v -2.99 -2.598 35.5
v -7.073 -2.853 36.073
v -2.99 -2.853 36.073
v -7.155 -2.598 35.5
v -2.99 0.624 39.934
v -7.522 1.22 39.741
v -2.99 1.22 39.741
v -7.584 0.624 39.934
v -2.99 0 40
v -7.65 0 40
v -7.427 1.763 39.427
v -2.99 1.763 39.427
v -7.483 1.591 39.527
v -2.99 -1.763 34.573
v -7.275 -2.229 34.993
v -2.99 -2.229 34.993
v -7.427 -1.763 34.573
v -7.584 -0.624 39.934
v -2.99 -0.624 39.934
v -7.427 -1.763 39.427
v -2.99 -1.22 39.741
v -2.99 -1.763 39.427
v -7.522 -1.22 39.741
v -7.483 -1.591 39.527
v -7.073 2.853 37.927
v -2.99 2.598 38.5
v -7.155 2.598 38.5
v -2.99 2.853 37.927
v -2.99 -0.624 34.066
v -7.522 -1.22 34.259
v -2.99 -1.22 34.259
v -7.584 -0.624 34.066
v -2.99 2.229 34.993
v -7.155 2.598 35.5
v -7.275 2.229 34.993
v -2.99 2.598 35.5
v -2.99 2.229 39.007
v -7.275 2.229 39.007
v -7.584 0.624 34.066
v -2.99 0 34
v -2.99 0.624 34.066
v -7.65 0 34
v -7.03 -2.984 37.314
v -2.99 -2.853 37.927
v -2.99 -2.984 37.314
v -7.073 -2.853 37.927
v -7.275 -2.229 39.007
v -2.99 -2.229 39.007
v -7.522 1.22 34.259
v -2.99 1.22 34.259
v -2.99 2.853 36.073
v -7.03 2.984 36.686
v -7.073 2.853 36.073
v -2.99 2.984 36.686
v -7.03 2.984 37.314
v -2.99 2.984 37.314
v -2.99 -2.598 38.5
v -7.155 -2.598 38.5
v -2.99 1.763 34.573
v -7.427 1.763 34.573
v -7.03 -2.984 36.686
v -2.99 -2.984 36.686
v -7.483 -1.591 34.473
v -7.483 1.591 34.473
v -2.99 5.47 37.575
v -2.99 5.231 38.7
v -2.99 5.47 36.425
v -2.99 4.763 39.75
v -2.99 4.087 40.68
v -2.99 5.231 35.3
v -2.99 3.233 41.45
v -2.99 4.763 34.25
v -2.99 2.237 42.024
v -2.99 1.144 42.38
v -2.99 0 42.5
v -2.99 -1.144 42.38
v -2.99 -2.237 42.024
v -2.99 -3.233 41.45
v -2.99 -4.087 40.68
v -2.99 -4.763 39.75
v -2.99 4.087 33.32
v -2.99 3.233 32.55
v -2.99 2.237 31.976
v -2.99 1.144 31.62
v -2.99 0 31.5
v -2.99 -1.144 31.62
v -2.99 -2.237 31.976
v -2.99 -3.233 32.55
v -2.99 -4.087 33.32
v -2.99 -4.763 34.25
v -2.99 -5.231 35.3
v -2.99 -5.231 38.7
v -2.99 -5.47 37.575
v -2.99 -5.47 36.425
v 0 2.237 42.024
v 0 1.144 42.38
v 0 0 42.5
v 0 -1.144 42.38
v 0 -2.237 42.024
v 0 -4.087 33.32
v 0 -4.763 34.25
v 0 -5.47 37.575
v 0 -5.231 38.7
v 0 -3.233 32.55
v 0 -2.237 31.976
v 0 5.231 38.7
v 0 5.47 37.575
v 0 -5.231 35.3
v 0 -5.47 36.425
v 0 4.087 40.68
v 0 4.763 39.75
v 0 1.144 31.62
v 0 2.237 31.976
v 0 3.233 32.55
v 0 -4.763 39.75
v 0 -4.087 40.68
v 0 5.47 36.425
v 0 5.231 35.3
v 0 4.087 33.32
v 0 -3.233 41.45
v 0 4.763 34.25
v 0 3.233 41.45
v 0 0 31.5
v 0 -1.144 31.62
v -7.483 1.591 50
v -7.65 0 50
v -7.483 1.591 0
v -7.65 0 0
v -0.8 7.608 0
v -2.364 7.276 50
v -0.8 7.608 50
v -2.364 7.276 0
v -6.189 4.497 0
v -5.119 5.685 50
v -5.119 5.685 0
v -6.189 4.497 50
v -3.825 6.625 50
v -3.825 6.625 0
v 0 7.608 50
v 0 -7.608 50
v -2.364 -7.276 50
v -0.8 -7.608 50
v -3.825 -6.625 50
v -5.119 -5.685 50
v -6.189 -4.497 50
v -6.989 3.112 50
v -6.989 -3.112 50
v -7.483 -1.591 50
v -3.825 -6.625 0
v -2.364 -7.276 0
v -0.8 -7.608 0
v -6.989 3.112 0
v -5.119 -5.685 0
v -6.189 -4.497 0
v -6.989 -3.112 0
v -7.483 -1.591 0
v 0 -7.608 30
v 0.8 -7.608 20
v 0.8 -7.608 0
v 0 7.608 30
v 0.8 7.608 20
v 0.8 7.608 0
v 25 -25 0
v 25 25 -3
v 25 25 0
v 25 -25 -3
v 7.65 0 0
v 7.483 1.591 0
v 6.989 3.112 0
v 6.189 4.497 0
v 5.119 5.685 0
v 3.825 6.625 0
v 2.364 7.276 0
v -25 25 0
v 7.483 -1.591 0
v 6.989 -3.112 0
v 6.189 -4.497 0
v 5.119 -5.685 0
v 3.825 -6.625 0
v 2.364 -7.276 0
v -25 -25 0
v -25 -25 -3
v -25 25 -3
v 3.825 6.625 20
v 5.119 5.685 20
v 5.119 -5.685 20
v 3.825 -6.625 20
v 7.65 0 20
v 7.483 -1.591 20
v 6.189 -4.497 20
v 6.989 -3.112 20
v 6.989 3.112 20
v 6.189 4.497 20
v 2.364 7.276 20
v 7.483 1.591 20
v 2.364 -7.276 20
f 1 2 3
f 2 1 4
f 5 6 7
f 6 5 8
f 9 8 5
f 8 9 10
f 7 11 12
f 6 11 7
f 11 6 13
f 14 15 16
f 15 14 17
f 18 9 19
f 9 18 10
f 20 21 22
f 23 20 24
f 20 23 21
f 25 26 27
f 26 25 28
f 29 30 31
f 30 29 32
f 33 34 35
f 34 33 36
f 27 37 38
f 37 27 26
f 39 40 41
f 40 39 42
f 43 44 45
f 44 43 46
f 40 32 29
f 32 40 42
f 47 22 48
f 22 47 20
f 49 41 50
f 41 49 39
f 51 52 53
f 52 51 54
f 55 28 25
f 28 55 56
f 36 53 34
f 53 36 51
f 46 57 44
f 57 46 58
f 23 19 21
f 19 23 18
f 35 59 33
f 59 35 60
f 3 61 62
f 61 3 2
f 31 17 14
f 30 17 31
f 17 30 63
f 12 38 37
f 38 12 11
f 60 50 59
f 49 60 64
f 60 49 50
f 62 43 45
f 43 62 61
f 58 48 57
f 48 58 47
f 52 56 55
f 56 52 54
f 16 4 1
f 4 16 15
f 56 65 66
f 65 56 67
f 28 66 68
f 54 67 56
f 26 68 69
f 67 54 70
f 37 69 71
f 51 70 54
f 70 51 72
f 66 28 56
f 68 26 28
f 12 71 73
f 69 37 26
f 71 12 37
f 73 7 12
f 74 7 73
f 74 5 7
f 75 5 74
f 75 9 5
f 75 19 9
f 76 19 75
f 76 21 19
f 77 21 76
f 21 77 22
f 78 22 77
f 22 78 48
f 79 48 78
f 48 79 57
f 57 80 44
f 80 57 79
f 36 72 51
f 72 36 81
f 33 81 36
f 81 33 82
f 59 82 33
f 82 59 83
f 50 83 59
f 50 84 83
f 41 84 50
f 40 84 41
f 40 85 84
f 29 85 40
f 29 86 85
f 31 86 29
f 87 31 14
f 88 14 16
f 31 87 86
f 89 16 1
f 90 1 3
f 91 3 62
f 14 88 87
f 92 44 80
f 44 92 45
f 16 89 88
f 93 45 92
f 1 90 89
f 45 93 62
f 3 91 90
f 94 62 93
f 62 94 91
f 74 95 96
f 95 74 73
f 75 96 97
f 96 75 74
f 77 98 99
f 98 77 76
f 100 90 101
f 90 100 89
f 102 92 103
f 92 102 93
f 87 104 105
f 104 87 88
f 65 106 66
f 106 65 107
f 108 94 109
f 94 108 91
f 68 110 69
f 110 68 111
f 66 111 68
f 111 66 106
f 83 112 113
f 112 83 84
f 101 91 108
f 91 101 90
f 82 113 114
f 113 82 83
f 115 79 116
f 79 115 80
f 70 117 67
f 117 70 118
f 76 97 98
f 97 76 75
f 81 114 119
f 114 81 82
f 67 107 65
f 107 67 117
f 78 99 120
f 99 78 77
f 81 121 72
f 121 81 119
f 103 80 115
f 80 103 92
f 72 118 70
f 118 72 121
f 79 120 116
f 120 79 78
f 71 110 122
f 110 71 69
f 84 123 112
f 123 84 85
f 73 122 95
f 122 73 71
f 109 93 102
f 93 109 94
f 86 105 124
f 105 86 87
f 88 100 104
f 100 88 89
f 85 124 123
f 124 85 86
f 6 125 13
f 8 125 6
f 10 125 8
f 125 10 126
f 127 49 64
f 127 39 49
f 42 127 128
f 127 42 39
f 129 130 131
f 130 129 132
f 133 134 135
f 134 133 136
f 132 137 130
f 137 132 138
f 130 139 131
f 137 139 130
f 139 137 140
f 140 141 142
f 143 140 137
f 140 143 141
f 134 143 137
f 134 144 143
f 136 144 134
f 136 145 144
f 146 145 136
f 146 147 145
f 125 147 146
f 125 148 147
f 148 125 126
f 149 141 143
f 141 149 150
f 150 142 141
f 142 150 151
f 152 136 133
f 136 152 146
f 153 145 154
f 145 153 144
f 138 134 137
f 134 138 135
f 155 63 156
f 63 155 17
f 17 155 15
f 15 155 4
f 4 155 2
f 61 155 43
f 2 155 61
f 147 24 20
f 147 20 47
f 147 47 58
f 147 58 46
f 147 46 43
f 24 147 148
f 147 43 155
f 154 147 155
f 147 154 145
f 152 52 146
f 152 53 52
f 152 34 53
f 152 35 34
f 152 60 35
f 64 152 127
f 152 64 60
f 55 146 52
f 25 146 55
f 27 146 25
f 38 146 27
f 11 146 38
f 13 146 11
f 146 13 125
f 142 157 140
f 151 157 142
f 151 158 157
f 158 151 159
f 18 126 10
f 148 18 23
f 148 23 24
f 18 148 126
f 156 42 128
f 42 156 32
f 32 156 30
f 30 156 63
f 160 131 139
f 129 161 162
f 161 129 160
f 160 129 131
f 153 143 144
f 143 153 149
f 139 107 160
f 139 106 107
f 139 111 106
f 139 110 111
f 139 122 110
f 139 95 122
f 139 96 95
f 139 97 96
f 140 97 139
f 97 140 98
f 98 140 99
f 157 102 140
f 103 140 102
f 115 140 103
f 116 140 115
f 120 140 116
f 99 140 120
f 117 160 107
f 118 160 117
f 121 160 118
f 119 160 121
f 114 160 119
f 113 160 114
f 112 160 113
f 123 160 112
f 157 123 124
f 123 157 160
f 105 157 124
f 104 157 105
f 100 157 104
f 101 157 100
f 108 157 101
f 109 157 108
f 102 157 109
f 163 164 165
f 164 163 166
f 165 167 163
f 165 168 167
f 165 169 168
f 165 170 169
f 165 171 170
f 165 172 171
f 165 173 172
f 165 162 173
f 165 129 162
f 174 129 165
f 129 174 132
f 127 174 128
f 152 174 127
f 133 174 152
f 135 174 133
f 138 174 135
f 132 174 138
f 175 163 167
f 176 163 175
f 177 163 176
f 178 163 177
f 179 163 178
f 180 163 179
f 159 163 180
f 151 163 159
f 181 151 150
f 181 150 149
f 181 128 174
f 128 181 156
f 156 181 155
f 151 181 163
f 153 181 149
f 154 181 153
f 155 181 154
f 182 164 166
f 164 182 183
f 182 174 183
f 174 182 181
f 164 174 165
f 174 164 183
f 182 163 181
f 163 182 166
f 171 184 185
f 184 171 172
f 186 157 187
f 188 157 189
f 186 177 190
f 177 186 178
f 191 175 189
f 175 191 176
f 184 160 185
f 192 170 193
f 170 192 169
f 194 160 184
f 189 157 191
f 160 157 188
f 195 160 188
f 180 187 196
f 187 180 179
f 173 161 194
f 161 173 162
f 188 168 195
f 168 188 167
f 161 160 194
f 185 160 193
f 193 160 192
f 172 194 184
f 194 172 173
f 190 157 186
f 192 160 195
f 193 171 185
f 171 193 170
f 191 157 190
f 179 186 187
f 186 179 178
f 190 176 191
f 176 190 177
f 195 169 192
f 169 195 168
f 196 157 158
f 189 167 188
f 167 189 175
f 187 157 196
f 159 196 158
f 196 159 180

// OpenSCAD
hole_diam  = 15.3;
desk_thick = 20.0;
wall       =  3.0;
plate      = 50.0;
screw      =  6.0;
screw_hat  = 11.0;
screw_hat_thick = 3.0;
screw_len  = 10.0;
screw_dist = 17.0;
$fn        = 30;

module halfcylinder( h, d) {
    difference() {
        cylinder(h = h, d = d);
        translate([0, -d-1, -1])
        cube([2*d, 2*d+2, h+2]);
    }
    
}

module screw() {
    translate([0, 0, screw_hat_thick])
    cylinder(h = screw_len, d = screw);
    cylinder(h = screw_hat_thick, d = screw_hat);
}

module mount() {
    //plate
    translate([-0.5*plate, -0.5*plate, -wall])
    cube([plate, plate, wall]);

    //mount
    hull() {
        cylinder(h = desk_thick, d = hole_diam);

        translate([0, 0, desk_thick])
        halfcylinder( h = 0.5*desk_thick, d = hole_diam);
    }

    translate([0, 0, 1.5*desk_thick])
    halfcylinder( h = desk_thick, d = hole_diam);
}

difference() {
    mount();
    
    translate([0.01, 0, desk_thick+screw_dist])
    rotate([0, -90, 0])
    screw();
}
